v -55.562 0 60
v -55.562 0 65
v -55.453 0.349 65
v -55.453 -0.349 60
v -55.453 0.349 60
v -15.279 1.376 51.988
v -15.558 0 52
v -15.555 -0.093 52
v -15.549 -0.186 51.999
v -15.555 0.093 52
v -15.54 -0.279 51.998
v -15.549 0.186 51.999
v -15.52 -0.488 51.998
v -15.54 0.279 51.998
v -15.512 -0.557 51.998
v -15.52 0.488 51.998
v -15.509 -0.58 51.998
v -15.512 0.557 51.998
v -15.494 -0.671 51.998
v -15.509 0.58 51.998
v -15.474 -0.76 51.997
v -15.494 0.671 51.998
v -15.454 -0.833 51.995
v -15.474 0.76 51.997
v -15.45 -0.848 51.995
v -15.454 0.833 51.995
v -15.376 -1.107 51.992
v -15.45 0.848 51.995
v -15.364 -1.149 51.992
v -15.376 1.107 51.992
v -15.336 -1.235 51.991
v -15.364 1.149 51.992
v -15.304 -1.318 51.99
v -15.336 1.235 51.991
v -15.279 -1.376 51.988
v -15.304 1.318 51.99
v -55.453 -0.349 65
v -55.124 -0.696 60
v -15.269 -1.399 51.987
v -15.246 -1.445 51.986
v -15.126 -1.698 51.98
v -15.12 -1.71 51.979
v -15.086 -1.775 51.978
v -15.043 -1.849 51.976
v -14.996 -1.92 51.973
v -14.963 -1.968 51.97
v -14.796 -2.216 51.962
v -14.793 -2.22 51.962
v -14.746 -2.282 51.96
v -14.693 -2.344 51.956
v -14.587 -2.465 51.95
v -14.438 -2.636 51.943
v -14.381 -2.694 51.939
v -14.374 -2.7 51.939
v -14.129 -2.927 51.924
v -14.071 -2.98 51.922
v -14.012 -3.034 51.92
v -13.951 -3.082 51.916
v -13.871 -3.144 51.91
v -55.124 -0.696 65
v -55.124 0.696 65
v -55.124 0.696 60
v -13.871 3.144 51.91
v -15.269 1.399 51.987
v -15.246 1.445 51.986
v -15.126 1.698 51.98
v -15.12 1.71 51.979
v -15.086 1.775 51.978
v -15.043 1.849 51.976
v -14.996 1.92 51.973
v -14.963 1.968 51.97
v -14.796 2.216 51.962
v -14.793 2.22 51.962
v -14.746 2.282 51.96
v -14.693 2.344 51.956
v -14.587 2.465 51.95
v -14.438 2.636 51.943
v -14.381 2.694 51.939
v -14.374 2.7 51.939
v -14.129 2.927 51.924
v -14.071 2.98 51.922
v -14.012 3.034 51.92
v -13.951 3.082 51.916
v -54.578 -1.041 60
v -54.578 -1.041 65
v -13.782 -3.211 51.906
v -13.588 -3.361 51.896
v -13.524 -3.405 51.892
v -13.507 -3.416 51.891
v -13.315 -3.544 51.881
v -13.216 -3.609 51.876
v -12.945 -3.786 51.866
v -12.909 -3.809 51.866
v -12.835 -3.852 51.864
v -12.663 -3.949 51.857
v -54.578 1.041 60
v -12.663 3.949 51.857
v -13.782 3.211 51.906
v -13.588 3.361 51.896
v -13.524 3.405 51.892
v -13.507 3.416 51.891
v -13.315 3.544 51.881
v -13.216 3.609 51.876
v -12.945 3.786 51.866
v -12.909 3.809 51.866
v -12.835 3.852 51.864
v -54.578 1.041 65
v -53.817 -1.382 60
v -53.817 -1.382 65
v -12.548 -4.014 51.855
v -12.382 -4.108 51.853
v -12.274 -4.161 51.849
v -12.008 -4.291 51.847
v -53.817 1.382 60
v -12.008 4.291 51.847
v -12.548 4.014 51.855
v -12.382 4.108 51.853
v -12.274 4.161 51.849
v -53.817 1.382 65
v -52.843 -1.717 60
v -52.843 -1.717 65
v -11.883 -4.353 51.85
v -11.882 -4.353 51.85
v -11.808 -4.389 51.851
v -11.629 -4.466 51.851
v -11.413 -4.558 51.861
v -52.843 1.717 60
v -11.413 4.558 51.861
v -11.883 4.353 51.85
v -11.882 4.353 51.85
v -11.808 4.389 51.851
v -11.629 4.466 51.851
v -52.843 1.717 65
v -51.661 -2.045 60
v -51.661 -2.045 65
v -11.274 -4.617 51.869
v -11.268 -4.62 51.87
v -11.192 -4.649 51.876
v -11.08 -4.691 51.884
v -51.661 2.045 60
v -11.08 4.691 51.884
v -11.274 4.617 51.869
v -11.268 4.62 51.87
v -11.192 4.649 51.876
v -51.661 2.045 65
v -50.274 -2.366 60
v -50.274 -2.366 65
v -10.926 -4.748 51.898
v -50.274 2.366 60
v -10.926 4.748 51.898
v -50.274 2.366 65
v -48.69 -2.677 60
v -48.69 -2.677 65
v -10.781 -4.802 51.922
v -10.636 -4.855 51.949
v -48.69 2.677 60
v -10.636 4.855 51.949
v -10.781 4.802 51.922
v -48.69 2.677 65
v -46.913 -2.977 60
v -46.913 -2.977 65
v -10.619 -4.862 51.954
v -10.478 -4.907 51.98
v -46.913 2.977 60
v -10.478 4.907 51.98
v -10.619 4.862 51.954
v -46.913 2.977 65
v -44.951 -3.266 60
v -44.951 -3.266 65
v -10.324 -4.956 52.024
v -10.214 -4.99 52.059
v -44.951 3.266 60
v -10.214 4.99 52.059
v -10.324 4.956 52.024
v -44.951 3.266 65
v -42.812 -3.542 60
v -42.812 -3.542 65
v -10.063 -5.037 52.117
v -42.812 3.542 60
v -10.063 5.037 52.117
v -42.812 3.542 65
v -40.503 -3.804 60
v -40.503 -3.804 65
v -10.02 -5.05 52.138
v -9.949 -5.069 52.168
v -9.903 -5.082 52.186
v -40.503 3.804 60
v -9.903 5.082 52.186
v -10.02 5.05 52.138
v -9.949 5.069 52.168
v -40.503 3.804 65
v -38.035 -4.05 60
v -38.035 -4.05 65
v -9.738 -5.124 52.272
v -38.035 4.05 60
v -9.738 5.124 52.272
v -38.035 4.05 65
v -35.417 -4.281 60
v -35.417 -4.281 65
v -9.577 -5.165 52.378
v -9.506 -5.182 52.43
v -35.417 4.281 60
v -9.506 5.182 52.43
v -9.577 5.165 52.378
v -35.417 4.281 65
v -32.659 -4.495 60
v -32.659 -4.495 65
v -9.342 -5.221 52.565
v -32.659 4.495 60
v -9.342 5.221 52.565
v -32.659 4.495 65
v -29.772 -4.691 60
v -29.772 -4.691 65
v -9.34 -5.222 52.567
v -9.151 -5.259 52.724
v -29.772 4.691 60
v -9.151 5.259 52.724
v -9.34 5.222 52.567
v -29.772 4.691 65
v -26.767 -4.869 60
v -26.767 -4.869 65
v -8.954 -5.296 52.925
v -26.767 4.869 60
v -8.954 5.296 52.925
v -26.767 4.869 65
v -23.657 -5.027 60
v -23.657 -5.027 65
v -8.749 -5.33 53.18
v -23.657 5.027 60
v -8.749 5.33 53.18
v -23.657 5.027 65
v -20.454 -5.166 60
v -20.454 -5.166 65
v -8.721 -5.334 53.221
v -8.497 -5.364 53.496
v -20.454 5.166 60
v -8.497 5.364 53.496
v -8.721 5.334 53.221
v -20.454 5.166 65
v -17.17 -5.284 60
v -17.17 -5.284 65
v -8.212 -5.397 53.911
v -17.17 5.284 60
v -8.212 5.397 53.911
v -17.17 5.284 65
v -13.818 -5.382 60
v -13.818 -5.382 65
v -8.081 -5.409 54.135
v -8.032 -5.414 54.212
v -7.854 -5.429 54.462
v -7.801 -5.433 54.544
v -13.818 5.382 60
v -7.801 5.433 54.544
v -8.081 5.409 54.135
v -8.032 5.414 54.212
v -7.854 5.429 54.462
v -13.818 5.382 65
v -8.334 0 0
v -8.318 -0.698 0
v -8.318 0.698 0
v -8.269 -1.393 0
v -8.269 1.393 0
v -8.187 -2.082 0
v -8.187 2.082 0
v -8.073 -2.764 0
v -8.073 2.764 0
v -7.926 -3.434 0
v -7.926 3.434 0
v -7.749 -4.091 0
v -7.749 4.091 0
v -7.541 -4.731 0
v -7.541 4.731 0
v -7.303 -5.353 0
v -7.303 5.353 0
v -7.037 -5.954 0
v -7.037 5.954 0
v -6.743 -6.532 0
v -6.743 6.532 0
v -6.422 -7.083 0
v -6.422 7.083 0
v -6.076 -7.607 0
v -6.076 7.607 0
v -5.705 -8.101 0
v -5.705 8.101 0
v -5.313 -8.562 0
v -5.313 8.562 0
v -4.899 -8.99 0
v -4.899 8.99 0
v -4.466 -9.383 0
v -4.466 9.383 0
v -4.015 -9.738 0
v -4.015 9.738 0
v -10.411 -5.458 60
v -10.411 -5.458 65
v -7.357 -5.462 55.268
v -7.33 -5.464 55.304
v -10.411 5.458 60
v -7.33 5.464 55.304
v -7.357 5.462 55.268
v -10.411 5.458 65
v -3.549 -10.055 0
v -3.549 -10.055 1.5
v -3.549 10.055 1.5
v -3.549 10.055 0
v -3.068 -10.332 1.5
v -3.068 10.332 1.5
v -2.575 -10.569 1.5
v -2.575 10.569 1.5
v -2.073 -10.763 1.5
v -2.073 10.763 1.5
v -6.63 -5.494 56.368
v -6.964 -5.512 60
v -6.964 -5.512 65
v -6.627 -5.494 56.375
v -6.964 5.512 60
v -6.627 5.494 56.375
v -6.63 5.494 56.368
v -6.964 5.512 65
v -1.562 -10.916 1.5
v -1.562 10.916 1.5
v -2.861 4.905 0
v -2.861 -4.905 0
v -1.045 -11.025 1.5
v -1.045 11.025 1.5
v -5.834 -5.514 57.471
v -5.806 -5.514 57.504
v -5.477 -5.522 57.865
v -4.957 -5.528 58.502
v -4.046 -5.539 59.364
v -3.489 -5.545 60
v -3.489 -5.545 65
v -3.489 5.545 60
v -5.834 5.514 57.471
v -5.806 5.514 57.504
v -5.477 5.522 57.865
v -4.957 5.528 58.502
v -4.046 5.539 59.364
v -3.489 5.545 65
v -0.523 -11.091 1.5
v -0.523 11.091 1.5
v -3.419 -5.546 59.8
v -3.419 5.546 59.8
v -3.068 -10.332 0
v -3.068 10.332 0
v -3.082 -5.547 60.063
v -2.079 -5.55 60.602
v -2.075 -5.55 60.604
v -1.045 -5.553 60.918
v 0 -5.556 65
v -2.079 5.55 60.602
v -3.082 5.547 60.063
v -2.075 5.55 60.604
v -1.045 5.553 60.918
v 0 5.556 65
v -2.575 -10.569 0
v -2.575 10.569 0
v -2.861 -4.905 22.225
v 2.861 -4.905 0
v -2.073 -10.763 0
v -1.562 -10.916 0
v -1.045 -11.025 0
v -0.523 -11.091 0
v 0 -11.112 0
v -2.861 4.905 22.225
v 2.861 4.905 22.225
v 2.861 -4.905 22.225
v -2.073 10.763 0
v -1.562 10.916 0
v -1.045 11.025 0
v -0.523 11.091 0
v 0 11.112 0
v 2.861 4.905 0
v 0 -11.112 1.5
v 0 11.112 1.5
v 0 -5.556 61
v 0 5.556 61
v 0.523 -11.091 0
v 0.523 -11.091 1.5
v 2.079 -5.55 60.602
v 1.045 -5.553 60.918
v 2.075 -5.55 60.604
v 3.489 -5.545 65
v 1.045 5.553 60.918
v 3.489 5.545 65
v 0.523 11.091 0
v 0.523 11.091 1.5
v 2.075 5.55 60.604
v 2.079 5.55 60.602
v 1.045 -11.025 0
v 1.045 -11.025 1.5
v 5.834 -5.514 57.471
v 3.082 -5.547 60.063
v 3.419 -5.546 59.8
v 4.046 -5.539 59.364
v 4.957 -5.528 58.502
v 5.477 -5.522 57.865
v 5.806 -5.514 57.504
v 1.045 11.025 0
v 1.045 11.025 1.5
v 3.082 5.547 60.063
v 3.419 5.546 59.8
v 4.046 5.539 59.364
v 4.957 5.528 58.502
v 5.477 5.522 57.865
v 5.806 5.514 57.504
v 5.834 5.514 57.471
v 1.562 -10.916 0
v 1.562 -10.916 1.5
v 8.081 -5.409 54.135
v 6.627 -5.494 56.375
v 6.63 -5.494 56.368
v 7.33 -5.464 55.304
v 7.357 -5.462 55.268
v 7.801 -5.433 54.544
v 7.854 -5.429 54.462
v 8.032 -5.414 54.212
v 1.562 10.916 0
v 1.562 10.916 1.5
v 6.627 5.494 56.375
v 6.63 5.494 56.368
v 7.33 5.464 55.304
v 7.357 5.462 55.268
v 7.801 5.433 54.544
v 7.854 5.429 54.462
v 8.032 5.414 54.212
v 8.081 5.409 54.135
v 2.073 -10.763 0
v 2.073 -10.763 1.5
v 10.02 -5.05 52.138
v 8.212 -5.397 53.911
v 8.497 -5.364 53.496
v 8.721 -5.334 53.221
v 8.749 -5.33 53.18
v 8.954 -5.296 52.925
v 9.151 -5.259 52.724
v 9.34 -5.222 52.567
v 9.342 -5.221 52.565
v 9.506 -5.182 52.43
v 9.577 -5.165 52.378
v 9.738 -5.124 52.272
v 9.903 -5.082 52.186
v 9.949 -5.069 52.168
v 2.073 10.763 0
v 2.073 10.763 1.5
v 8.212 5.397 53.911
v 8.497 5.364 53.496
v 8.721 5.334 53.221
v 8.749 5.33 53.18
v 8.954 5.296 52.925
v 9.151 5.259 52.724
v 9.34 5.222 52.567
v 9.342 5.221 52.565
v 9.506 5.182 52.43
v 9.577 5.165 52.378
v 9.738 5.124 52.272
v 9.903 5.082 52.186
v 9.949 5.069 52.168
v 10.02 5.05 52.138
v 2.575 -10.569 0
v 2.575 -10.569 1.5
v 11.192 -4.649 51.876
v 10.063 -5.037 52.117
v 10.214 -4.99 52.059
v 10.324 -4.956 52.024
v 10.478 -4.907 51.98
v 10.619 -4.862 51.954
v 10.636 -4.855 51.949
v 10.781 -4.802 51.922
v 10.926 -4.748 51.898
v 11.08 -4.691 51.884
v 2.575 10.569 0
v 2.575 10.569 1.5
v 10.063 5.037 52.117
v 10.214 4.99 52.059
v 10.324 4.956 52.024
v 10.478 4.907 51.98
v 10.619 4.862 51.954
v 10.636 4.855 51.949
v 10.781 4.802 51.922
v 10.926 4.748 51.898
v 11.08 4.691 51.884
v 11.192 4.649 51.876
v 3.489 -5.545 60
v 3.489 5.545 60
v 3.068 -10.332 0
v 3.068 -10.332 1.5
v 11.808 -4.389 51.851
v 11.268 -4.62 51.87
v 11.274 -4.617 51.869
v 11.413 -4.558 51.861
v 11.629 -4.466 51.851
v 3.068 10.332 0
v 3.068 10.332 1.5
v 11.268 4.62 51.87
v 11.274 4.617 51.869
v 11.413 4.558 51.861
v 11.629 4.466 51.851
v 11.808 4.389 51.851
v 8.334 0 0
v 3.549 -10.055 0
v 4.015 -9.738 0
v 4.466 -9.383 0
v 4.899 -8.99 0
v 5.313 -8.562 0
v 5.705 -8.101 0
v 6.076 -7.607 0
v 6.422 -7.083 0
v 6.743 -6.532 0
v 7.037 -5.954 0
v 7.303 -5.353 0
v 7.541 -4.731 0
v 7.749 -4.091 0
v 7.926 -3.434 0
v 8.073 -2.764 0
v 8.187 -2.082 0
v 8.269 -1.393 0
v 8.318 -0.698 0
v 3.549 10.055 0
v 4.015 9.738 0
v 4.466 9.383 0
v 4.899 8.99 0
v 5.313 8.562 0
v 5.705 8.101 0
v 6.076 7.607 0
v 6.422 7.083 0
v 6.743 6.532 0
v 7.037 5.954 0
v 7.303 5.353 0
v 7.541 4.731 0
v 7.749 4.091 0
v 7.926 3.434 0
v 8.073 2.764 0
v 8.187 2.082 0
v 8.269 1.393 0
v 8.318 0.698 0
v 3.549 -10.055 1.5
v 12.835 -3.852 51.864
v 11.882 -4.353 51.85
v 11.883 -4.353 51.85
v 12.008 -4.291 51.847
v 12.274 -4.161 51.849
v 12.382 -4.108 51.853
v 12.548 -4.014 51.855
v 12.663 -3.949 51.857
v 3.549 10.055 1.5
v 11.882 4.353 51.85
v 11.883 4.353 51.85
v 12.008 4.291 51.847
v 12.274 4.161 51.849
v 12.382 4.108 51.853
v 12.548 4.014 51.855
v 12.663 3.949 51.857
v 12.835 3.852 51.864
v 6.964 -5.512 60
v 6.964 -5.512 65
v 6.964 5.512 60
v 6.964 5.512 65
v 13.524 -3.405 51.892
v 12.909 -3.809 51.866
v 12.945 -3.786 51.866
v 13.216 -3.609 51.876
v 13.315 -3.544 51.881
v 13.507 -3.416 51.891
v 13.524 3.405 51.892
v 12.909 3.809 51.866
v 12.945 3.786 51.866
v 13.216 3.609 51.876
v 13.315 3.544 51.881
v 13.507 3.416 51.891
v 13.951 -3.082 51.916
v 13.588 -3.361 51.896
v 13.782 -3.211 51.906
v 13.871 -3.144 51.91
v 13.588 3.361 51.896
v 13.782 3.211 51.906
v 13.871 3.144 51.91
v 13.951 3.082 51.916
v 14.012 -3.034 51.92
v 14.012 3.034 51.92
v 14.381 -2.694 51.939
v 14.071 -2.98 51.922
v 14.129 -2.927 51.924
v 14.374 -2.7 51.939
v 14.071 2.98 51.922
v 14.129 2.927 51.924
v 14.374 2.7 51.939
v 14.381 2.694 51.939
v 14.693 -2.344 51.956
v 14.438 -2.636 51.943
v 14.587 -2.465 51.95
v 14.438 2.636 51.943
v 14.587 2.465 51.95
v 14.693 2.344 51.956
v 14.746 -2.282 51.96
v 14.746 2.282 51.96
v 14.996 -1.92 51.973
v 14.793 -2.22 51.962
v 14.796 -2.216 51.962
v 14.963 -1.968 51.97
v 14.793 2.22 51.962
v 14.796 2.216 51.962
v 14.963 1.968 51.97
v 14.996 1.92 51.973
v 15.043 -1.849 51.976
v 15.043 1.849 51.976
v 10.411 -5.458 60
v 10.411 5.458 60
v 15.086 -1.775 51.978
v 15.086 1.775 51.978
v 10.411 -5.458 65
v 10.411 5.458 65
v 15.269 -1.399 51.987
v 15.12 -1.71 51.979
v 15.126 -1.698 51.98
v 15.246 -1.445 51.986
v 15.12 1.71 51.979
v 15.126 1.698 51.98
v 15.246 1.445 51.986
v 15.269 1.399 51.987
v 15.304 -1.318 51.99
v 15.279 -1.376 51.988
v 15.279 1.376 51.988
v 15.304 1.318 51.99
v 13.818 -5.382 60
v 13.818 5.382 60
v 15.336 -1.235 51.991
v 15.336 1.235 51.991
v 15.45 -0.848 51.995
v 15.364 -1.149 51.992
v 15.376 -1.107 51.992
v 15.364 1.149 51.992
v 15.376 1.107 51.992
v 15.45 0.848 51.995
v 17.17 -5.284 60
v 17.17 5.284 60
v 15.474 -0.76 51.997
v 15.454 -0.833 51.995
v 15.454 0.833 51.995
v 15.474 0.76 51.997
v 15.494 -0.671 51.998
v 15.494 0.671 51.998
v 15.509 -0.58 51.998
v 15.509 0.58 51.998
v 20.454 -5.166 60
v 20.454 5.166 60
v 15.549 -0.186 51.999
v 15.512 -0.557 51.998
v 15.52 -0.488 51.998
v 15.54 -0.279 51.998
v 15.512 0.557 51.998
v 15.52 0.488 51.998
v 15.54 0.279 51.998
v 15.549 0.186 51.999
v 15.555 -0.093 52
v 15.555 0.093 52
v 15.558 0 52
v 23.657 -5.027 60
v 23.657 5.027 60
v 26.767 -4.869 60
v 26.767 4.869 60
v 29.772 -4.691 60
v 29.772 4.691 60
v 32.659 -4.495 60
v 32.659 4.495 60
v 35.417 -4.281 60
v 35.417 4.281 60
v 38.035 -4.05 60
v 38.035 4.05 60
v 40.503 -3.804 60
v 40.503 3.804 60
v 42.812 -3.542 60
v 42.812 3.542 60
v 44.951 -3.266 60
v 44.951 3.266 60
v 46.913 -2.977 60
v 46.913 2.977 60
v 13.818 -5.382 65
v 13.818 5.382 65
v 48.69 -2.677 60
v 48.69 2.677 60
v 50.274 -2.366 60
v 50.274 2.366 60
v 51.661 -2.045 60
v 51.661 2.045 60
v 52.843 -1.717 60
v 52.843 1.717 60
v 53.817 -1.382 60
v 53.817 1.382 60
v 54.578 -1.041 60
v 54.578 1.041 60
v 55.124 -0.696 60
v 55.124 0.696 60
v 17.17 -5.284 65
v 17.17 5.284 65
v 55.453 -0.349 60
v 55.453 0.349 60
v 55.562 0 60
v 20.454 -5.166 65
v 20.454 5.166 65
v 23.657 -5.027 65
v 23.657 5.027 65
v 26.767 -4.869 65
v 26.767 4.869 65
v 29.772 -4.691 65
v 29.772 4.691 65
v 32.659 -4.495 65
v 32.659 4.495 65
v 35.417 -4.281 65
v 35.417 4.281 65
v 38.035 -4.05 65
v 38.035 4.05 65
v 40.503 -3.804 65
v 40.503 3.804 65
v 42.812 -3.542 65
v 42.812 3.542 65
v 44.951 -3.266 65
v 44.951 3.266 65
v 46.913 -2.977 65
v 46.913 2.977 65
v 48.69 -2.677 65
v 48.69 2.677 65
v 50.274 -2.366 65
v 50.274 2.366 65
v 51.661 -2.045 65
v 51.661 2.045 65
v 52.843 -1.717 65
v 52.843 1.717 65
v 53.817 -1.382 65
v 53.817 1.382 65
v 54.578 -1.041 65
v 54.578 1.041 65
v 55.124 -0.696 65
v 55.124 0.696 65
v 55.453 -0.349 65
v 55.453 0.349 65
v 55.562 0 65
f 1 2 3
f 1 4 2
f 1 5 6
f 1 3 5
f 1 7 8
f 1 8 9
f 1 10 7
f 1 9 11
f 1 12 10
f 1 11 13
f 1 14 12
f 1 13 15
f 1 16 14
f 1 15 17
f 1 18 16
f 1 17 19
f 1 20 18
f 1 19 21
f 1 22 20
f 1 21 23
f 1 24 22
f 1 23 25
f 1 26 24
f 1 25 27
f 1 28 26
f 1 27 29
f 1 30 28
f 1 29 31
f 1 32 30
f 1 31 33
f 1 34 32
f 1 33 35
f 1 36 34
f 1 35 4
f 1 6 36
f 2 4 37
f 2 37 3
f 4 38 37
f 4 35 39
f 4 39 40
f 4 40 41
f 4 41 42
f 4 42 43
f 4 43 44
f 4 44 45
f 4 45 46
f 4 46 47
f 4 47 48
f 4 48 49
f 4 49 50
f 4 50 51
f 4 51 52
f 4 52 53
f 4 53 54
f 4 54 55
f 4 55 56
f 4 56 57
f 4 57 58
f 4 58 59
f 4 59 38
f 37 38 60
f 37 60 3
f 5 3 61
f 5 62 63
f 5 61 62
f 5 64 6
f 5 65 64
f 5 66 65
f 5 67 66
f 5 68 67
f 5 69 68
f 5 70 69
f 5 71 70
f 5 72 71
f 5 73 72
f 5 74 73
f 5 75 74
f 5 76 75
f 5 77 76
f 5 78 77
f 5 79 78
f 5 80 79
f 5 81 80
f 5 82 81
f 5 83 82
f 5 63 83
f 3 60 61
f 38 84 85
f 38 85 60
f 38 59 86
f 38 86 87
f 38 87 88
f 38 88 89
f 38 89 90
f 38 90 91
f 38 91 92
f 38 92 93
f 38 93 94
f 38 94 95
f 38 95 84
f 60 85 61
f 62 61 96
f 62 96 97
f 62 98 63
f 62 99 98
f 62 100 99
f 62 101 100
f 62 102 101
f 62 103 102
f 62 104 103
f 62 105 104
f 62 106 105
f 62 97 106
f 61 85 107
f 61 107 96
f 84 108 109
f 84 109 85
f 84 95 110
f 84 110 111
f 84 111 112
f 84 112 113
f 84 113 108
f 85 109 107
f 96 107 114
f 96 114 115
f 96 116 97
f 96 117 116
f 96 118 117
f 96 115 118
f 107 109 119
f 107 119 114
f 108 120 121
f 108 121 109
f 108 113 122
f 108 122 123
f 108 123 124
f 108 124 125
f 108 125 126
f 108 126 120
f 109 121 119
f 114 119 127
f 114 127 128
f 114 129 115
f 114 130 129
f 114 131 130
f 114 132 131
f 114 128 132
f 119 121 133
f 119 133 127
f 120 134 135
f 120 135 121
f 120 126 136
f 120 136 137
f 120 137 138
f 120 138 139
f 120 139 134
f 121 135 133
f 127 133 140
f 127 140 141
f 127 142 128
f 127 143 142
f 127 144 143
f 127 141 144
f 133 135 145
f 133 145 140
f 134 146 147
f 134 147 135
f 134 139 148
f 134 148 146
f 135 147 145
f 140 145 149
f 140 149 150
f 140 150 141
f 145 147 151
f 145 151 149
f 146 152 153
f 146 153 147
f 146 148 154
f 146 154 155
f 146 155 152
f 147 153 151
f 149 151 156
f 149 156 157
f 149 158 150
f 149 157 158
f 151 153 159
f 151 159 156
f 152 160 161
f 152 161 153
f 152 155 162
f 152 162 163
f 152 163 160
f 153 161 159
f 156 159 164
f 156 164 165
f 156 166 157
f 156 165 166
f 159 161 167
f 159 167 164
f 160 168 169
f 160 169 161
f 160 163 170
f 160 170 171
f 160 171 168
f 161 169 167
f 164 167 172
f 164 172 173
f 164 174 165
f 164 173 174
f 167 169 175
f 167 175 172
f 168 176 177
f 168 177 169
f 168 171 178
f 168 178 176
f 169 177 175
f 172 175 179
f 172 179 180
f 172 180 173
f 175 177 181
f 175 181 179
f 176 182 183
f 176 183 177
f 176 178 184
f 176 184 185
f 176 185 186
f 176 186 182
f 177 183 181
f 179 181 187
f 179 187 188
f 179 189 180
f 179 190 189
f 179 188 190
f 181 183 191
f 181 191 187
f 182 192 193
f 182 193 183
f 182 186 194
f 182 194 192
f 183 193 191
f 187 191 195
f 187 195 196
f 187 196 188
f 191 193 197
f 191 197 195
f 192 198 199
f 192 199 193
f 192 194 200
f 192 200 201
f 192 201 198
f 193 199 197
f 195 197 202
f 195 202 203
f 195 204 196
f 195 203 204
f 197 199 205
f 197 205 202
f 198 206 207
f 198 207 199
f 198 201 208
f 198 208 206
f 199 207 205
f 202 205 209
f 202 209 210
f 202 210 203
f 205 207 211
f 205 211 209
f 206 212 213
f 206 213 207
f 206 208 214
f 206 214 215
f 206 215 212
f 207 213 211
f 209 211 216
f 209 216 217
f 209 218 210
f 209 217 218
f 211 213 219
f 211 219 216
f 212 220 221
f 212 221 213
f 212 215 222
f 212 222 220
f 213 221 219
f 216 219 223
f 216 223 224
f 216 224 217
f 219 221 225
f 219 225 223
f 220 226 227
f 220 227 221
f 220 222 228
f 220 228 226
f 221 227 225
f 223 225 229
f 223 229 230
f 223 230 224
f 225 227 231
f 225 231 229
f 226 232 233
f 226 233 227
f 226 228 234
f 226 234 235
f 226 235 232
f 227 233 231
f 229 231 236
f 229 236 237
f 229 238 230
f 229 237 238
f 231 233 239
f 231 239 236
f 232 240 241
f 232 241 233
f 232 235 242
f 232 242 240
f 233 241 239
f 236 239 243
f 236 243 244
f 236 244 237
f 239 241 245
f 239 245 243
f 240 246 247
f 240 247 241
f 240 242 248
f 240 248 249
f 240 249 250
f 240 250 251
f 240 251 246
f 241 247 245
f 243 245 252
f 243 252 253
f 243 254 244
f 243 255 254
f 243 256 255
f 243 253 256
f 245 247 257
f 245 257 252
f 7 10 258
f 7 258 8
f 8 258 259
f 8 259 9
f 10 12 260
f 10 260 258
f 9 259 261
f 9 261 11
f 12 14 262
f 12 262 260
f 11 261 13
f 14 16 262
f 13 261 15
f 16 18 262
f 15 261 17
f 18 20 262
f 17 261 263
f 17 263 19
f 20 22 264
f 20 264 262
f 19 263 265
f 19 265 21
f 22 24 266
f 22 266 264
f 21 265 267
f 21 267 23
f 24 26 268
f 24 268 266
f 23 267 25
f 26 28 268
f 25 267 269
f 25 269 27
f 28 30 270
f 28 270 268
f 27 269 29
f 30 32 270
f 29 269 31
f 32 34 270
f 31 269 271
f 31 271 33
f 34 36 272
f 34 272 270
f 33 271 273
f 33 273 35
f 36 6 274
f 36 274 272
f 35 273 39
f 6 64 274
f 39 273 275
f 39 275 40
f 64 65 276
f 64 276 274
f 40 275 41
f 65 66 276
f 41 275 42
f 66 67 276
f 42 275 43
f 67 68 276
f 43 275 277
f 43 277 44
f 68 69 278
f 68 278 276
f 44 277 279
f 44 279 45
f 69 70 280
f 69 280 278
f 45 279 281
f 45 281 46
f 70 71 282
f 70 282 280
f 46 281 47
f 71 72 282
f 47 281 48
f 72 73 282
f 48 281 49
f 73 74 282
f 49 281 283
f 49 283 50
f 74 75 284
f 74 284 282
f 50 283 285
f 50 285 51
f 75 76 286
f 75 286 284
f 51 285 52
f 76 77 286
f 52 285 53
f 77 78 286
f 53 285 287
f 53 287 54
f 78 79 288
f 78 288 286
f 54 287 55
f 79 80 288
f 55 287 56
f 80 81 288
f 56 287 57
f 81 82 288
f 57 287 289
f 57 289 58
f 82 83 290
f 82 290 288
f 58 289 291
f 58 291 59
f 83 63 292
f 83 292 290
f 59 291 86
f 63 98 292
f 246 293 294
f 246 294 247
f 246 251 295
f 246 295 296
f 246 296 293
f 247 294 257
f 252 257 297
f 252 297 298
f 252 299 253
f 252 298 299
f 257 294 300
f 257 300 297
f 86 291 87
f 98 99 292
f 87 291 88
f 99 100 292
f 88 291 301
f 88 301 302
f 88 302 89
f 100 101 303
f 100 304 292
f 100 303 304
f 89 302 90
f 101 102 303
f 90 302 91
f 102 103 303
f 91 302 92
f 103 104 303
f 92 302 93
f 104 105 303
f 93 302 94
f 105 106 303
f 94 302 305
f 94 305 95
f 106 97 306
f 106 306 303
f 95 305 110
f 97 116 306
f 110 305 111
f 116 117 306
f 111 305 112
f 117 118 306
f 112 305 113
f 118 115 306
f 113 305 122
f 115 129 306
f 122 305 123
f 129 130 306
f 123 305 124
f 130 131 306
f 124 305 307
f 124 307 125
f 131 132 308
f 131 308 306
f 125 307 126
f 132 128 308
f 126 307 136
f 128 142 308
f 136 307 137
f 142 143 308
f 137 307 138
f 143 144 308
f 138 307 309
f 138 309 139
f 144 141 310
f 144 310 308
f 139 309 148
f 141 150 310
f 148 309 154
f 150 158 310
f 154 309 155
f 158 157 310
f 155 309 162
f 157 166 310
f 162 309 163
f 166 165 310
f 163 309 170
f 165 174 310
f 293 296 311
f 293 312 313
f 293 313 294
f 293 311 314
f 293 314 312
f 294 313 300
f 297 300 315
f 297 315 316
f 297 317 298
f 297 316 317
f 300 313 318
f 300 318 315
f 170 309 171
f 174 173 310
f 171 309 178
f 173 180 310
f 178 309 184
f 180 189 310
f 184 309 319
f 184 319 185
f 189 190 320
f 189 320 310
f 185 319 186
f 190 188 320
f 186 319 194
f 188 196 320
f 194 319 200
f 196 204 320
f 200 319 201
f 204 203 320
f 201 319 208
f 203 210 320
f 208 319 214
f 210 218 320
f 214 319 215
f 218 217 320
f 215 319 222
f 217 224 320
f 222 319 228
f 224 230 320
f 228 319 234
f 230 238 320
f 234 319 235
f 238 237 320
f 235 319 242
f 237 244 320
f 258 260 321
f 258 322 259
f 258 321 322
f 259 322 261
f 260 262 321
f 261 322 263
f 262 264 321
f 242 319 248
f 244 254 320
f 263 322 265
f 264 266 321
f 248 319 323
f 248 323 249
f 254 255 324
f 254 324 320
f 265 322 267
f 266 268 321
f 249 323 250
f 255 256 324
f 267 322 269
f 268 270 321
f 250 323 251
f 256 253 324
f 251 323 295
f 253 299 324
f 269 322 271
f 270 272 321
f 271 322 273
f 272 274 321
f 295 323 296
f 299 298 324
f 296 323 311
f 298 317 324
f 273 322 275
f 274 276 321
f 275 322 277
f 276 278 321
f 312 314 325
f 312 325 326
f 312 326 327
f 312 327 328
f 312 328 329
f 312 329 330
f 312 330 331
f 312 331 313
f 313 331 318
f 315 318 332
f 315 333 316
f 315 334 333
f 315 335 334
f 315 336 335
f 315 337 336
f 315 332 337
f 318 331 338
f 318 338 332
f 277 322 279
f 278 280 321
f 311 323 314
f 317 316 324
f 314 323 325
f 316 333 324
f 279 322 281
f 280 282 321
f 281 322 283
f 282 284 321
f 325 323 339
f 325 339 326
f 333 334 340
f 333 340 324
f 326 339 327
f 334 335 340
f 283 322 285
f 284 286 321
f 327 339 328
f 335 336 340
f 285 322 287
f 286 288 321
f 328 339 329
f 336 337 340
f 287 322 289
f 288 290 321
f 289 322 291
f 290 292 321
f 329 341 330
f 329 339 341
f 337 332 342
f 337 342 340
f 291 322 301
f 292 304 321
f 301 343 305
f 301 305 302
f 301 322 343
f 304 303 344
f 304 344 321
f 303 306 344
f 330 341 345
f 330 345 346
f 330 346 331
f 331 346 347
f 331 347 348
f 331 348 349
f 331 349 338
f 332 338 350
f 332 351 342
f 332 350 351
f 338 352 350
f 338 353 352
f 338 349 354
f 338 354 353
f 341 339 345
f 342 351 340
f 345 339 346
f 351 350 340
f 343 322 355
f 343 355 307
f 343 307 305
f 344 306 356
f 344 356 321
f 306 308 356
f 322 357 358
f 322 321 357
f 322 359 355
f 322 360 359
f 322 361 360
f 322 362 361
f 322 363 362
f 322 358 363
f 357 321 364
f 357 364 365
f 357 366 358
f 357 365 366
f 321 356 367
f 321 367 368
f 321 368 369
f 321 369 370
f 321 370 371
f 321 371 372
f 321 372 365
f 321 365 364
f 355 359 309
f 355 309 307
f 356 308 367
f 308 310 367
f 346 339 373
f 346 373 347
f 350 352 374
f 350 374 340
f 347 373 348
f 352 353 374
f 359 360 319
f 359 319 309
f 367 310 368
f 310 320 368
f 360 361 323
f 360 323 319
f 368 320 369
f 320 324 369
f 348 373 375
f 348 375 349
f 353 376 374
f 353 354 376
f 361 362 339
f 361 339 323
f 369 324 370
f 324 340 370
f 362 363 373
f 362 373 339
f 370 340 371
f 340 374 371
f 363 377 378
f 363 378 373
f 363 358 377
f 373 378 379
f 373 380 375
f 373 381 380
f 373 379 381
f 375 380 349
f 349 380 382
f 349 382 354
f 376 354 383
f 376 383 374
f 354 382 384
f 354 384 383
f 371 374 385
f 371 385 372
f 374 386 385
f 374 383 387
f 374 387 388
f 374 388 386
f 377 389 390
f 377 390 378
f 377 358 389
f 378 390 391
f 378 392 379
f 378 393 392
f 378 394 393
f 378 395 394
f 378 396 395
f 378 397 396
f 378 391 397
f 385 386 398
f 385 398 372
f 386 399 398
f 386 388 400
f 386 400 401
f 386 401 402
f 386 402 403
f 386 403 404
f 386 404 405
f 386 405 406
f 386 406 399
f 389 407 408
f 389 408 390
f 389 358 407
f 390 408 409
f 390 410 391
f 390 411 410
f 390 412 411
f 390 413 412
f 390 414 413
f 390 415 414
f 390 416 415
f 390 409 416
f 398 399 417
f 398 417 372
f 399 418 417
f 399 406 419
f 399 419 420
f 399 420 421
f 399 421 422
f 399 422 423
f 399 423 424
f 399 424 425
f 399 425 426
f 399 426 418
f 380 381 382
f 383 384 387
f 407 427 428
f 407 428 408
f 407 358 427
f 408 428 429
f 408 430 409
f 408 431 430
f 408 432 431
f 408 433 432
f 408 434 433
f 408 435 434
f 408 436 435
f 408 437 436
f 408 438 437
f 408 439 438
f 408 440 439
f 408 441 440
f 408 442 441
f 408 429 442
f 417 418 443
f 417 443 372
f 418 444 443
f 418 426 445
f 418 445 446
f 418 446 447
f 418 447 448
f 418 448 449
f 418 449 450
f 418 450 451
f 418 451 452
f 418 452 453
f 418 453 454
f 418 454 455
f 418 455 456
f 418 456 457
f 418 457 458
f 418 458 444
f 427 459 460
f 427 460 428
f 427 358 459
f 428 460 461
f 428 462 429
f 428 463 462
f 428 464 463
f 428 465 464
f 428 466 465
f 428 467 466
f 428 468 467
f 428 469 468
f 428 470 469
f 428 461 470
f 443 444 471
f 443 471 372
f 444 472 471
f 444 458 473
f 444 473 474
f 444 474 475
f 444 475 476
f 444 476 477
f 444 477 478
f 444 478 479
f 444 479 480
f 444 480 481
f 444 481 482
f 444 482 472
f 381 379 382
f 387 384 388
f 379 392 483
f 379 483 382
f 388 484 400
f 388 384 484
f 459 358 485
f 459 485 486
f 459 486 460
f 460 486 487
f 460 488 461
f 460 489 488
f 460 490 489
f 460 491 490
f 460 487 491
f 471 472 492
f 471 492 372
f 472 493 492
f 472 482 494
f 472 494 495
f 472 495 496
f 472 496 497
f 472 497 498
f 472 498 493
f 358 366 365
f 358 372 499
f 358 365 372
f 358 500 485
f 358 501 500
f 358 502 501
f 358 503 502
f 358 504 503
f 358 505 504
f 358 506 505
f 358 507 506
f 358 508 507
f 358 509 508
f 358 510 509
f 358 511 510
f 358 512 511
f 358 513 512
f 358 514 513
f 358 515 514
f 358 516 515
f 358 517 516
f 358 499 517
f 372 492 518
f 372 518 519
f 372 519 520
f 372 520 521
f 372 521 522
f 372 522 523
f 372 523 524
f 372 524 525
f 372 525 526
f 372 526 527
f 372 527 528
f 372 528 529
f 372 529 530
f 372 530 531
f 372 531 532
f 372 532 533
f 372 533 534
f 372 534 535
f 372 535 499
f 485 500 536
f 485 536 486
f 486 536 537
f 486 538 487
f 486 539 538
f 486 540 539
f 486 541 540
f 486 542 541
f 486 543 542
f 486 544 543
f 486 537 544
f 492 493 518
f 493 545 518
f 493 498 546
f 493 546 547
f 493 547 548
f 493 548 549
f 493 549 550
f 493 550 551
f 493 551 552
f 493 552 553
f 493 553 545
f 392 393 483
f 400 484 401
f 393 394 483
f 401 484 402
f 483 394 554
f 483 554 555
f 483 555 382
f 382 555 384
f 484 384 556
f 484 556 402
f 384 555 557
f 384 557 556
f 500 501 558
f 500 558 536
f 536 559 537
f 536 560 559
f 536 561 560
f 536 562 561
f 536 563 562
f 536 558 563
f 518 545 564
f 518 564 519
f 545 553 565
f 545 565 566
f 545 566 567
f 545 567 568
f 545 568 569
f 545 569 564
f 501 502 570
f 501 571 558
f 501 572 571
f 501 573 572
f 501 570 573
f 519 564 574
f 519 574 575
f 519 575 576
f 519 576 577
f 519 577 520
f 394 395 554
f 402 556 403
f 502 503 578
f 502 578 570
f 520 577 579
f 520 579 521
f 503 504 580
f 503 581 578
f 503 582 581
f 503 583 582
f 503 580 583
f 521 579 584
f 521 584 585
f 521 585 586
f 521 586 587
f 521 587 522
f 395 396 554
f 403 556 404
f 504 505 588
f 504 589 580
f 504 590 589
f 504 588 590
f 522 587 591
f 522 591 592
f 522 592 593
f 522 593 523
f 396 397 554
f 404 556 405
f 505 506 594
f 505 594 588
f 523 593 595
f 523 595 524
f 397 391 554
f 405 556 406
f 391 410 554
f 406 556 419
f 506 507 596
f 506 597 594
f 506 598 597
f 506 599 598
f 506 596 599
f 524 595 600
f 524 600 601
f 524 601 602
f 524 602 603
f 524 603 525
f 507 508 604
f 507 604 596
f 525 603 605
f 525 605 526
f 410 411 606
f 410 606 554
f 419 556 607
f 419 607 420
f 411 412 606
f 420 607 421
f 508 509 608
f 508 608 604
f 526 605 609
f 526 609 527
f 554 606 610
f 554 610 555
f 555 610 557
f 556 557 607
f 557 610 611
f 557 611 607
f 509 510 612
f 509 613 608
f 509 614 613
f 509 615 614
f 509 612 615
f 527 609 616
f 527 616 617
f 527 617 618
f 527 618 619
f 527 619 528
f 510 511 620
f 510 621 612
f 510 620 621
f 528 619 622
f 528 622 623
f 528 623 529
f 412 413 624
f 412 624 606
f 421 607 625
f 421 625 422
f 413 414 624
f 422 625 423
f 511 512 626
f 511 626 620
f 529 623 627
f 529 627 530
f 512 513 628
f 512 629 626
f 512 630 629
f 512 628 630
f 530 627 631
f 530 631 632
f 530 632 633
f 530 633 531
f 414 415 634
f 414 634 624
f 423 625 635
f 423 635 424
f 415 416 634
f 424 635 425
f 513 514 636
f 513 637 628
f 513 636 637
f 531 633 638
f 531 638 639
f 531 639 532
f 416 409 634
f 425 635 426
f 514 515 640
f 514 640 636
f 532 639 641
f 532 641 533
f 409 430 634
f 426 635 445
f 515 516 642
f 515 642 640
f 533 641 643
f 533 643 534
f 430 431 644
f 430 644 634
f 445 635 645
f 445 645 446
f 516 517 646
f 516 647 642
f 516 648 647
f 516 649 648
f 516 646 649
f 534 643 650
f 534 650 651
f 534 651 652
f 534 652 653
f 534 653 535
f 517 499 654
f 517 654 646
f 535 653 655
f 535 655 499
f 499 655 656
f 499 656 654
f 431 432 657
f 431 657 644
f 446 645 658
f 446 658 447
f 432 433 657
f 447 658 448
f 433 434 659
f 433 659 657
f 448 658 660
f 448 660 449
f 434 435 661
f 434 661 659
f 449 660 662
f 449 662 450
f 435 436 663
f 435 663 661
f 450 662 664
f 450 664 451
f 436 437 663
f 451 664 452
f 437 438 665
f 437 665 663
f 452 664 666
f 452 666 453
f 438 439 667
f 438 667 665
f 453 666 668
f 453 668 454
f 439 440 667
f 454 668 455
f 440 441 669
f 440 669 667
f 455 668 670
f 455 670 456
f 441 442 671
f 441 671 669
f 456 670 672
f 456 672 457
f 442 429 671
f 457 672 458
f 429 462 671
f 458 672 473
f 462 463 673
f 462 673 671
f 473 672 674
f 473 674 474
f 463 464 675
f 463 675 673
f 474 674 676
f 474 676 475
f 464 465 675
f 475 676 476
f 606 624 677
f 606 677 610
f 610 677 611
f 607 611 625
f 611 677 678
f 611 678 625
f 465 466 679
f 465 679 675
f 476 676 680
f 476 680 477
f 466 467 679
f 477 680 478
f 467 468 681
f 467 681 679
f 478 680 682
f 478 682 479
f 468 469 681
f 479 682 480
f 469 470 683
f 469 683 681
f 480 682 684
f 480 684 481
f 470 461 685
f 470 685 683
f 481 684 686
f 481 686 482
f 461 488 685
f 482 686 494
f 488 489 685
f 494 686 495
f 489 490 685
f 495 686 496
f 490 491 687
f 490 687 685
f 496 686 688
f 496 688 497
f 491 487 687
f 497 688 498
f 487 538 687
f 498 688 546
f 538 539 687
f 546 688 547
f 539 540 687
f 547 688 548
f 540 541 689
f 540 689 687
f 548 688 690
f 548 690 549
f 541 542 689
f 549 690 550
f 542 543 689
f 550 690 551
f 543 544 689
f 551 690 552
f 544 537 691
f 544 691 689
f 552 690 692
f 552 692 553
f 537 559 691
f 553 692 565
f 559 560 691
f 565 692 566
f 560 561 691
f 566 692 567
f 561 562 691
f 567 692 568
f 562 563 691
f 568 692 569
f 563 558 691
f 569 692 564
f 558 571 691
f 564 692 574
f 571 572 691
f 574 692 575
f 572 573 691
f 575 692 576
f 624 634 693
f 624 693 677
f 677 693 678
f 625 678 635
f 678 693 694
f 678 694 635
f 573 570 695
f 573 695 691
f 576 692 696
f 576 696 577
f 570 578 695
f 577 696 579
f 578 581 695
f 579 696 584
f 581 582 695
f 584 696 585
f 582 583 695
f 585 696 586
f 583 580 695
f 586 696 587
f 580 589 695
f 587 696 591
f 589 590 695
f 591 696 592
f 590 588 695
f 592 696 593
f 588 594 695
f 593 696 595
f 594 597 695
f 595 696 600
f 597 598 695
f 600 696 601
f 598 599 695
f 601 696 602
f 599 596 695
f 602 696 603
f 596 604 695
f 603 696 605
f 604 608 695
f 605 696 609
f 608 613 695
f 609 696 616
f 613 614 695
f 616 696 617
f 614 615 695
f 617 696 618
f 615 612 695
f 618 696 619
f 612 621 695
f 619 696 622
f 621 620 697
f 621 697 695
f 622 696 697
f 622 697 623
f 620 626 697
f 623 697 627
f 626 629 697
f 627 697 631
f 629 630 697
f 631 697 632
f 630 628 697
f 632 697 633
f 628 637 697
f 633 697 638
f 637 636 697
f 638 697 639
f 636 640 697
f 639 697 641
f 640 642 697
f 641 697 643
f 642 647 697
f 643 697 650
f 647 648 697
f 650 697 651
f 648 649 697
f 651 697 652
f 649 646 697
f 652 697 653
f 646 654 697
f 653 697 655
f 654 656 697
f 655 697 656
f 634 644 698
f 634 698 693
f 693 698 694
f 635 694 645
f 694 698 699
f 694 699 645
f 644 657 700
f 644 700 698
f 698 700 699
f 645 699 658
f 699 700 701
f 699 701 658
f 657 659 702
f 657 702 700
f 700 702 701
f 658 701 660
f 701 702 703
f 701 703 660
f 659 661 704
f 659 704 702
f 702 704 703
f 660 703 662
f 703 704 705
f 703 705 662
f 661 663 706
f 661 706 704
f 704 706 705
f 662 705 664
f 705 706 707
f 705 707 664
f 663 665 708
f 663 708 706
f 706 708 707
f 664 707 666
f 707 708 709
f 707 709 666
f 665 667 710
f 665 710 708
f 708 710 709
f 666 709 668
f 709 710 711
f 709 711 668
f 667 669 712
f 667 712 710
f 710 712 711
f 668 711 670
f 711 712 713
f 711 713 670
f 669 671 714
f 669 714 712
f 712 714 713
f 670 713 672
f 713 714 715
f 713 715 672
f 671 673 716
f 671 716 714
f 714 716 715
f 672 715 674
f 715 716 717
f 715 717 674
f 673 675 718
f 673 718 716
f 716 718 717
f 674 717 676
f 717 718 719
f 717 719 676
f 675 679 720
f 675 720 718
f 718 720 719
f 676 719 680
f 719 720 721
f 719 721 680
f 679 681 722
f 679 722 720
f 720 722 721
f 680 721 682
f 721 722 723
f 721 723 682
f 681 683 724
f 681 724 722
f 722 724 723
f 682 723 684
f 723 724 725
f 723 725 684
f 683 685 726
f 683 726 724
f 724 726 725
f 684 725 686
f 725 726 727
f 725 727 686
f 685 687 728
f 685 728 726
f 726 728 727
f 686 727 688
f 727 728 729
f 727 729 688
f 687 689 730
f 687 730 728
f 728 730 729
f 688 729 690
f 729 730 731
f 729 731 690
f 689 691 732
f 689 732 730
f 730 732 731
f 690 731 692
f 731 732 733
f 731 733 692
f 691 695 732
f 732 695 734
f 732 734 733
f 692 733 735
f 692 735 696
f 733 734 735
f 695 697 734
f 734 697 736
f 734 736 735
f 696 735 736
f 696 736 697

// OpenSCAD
$fn=100;
INCH=25.4;
module normcube(c) {
    // normalize a cube to be positioned around the origin, like a cylinder.
    translate([-c.x/2,-c.y/2,0]) cube(c);
}

module main() {
  difference() {
    // stem
    hull() {
      scale([1.5,2,1.5]) cylinder(1,d=7/8*INCH/2);
      translate([0,0, 60]) rotate([0,0,90]) scale([1,3,1]) cylinder(1,d=7/8*INCH/2);
    }
    // mounting slot
    normcube([7/32*INCH*1.03,6/16*INCH*1.03,7/8*INCH]);
  }
  // fancy arms
  hull() {
    translate([0,0,60]) scale([10,1,1]) cylinder(5,d=7/8*INCH/2);
    translate([0,0,50]) cylinder(1,d=7/8*INCH/2);
  }
}

main();
